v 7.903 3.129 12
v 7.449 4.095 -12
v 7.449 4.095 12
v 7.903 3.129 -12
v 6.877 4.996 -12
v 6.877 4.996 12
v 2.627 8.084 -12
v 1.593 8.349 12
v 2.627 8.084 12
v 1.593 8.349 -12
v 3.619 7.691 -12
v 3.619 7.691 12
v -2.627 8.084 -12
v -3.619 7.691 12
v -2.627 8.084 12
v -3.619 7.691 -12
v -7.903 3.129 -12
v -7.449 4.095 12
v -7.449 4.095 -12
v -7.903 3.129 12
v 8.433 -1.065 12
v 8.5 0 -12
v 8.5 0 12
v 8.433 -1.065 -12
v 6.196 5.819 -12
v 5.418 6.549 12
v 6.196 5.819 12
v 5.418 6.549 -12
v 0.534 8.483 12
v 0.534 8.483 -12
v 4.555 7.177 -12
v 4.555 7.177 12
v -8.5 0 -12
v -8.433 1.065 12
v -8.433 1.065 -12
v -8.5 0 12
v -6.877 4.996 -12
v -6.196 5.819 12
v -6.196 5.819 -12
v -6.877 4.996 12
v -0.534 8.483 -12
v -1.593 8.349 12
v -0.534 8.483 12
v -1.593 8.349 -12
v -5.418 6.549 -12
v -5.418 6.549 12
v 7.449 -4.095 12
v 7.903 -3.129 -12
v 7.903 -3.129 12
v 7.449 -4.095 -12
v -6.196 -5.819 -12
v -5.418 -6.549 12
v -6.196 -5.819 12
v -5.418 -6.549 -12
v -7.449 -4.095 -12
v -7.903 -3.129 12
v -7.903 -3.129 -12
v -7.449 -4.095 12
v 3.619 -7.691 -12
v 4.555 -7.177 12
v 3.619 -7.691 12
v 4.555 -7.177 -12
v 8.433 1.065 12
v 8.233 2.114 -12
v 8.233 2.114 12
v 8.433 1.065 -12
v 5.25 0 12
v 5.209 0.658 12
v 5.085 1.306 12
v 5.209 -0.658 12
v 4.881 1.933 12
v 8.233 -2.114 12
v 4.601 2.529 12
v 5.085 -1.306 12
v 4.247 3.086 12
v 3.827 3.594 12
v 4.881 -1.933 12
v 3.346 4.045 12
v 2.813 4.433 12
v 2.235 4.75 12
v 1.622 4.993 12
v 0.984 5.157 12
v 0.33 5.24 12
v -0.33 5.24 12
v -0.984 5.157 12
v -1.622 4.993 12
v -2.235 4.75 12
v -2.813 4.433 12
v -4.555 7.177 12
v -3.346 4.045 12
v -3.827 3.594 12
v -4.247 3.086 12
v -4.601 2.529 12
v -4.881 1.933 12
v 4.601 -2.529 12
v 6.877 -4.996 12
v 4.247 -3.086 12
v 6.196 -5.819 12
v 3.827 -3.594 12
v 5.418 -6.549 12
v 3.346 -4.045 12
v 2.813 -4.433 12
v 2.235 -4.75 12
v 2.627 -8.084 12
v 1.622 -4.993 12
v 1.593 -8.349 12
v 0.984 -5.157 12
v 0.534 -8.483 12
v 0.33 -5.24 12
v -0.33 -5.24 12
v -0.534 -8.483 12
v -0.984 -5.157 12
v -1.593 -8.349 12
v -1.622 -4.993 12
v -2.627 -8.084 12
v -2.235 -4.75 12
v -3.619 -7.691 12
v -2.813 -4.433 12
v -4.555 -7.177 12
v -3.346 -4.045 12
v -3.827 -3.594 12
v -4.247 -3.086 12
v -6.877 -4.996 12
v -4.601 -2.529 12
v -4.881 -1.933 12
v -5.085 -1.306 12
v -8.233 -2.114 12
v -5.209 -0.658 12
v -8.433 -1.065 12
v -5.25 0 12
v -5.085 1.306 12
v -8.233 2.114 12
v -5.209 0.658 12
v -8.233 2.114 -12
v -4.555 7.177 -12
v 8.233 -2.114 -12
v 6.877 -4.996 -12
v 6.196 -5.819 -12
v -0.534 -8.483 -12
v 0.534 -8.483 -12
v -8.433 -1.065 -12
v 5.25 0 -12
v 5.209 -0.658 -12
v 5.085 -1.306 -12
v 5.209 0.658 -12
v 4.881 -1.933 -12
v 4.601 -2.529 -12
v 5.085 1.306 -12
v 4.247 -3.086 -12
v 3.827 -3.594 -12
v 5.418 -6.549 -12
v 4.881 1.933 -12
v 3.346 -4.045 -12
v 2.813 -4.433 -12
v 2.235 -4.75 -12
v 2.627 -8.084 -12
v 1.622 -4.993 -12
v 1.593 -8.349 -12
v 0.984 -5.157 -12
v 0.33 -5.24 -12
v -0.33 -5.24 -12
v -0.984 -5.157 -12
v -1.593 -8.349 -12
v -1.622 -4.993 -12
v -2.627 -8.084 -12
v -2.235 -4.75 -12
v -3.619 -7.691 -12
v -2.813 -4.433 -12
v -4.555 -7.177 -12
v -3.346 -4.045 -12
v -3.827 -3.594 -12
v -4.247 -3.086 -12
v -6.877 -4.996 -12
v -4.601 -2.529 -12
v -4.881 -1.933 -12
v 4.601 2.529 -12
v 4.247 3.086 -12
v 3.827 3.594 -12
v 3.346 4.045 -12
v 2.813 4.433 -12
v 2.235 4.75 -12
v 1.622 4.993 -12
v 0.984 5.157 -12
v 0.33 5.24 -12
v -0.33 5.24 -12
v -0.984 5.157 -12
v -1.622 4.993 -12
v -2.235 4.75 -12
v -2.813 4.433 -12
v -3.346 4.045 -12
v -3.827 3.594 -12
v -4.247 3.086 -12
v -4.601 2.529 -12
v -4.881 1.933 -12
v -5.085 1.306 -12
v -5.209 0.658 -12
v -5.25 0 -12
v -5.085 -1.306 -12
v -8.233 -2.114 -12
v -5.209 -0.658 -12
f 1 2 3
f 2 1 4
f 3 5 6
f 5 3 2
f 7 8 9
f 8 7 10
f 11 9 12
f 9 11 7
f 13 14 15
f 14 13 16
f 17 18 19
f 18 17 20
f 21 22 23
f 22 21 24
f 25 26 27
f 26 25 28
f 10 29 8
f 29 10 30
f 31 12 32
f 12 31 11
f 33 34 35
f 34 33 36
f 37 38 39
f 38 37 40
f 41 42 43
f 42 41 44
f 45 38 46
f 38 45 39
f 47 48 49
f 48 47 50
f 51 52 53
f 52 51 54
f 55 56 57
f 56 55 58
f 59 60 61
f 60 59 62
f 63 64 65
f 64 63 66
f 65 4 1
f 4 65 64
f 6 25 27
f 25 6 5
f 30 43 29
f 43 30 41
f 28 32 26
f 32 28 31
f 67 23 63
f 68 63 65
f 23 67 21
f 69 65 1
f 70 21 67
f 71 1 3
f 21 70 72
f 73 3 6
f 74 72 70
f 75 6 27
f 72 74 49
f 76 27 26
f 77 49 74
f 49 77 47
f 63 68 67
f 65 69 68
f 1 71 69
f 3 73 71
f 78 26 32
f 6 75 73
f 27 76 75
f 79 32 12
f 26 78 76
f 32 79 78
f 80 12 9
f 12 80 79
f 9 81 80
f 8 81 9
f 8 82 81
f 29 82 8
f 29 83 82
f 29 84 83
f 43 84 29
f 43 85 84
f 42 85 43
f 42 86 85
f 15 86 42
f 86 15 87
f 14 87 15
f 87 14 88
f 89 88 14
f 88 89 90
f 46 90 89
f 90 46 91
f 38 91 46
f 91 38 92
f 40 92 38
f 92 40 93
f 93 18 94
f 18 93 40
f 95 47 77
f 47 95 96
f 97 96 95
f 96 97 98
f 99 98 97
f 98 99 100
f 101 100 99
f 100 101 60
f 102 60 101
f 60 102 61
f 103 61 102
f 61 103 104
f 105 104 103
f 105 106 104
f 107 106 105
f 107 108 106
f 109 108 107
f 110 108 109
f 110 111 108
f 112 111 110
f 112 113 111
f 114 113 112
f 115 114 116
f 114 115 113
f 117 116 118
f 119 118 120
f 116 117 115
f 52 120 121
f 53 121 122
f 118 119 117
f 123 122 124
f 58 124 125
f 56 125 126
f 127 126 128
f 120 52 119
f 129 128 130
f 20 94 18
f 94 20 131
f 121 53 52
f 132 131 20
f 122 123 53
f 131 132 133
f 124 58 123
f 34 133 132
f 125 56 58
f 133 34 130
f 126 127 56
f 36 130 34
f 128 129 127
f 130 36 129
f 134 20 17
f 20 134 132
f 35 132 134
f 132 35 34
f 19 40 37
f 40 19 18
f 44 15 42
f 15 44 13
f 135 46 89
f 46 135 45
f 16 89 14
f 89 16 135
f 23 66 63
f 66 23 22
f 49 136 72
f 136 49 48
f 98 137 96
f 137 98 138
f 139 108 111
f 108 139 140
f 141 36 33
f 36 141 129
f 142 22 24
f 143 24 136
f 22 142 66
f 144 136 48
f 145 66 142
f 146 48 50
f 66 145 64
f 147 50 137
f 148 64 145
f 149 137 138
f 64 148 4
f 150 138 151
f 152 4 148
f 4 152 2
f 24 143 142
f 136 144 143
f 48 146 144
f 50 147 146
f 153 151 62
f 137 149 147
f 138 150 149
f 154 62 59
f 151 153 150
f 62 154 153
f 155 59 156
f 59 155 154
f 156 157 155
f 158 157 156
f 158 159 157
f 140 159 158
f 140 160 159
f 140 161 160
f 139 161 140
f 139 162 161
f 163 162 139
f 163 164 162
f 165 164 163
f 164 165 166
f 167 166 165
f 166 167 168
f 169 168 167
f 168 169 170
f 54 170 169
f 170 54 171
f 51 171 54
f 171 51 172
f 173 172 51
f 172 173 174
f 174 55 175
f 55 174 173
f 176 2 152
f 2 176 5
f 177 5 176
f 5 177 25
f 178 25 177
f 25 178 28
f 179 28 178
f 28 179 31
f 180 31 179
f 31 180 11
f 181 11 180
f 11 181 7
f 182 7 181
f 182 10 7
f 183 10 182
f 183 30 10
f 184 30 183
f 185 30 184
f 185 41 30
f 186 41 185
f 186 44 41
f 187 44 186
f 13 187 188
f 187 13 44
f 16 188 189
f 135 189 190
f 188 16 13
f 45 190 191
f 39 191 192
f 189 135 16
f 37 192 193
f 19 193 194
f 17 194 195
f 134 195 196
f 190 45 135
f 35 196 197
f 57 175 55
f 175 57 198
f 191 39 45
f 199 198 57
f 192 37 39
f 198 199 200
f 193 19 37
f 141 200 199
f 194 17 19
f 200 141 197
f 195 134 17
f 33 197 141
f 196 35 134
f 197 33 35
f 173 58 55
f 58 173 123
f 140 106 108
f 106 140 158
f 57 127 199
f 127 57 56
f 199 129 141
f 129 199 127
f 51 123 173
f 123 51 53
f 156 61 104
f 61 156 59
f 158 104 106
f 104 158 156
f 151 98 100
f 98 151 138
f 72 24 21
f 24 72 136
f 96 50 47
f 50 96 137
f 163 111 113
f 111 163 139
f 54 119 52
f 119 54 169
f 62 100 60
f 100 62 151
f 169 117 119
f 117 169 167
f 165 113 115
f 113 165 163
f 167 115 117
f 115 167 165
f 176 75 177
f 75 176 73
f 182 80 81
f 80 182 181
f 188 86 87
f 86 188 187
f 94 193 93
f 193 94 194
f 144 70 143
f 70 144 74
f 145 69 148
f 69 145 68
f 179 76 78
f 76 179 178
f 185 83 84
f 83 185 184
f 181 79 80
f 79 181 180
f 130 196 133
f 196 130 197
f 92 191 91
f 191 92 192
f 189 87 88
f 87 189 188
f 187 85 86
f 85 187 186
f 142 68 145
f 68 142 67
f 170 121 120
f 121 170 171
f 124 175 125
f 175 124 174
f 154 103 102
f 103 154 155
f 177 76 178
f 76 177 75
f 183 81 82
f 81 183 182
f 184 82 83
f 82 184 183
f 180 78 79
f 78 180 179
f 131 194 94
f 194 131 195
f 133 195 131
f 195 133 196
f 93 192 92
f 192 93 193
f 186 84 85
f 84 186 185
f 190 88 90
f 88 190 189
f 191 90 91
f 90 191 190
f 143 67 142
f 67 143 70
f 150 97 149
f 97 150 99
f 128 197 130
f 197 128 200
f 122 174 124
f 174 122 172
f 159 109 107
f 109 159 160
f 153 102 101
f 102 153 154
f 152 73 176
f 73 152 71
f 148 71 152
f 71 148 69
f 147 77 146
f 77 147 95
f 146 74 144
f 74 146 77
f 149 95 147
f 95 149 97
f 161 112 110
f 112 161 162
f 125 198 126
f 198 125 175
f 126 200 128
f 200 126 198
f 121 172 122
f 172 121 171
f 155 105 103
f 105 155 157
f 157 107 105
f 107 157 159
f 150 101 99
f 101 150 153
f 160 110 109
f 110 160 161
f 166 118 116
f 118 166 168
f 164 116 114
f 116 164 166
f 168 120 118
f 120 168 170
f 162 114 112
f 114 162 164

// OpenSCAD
$fn = 50;


difference() {
	union() {
		translate(v = [0, 0, -12.0000000000]) {
			cylinder(h = 24, r = 8.5000000000);
		}
	}
	union() {
		translate(v = [0, 0, -100.0000000000]) {
			cylinder(h = 200, r = 5.2500000000);
		}
	}
}
